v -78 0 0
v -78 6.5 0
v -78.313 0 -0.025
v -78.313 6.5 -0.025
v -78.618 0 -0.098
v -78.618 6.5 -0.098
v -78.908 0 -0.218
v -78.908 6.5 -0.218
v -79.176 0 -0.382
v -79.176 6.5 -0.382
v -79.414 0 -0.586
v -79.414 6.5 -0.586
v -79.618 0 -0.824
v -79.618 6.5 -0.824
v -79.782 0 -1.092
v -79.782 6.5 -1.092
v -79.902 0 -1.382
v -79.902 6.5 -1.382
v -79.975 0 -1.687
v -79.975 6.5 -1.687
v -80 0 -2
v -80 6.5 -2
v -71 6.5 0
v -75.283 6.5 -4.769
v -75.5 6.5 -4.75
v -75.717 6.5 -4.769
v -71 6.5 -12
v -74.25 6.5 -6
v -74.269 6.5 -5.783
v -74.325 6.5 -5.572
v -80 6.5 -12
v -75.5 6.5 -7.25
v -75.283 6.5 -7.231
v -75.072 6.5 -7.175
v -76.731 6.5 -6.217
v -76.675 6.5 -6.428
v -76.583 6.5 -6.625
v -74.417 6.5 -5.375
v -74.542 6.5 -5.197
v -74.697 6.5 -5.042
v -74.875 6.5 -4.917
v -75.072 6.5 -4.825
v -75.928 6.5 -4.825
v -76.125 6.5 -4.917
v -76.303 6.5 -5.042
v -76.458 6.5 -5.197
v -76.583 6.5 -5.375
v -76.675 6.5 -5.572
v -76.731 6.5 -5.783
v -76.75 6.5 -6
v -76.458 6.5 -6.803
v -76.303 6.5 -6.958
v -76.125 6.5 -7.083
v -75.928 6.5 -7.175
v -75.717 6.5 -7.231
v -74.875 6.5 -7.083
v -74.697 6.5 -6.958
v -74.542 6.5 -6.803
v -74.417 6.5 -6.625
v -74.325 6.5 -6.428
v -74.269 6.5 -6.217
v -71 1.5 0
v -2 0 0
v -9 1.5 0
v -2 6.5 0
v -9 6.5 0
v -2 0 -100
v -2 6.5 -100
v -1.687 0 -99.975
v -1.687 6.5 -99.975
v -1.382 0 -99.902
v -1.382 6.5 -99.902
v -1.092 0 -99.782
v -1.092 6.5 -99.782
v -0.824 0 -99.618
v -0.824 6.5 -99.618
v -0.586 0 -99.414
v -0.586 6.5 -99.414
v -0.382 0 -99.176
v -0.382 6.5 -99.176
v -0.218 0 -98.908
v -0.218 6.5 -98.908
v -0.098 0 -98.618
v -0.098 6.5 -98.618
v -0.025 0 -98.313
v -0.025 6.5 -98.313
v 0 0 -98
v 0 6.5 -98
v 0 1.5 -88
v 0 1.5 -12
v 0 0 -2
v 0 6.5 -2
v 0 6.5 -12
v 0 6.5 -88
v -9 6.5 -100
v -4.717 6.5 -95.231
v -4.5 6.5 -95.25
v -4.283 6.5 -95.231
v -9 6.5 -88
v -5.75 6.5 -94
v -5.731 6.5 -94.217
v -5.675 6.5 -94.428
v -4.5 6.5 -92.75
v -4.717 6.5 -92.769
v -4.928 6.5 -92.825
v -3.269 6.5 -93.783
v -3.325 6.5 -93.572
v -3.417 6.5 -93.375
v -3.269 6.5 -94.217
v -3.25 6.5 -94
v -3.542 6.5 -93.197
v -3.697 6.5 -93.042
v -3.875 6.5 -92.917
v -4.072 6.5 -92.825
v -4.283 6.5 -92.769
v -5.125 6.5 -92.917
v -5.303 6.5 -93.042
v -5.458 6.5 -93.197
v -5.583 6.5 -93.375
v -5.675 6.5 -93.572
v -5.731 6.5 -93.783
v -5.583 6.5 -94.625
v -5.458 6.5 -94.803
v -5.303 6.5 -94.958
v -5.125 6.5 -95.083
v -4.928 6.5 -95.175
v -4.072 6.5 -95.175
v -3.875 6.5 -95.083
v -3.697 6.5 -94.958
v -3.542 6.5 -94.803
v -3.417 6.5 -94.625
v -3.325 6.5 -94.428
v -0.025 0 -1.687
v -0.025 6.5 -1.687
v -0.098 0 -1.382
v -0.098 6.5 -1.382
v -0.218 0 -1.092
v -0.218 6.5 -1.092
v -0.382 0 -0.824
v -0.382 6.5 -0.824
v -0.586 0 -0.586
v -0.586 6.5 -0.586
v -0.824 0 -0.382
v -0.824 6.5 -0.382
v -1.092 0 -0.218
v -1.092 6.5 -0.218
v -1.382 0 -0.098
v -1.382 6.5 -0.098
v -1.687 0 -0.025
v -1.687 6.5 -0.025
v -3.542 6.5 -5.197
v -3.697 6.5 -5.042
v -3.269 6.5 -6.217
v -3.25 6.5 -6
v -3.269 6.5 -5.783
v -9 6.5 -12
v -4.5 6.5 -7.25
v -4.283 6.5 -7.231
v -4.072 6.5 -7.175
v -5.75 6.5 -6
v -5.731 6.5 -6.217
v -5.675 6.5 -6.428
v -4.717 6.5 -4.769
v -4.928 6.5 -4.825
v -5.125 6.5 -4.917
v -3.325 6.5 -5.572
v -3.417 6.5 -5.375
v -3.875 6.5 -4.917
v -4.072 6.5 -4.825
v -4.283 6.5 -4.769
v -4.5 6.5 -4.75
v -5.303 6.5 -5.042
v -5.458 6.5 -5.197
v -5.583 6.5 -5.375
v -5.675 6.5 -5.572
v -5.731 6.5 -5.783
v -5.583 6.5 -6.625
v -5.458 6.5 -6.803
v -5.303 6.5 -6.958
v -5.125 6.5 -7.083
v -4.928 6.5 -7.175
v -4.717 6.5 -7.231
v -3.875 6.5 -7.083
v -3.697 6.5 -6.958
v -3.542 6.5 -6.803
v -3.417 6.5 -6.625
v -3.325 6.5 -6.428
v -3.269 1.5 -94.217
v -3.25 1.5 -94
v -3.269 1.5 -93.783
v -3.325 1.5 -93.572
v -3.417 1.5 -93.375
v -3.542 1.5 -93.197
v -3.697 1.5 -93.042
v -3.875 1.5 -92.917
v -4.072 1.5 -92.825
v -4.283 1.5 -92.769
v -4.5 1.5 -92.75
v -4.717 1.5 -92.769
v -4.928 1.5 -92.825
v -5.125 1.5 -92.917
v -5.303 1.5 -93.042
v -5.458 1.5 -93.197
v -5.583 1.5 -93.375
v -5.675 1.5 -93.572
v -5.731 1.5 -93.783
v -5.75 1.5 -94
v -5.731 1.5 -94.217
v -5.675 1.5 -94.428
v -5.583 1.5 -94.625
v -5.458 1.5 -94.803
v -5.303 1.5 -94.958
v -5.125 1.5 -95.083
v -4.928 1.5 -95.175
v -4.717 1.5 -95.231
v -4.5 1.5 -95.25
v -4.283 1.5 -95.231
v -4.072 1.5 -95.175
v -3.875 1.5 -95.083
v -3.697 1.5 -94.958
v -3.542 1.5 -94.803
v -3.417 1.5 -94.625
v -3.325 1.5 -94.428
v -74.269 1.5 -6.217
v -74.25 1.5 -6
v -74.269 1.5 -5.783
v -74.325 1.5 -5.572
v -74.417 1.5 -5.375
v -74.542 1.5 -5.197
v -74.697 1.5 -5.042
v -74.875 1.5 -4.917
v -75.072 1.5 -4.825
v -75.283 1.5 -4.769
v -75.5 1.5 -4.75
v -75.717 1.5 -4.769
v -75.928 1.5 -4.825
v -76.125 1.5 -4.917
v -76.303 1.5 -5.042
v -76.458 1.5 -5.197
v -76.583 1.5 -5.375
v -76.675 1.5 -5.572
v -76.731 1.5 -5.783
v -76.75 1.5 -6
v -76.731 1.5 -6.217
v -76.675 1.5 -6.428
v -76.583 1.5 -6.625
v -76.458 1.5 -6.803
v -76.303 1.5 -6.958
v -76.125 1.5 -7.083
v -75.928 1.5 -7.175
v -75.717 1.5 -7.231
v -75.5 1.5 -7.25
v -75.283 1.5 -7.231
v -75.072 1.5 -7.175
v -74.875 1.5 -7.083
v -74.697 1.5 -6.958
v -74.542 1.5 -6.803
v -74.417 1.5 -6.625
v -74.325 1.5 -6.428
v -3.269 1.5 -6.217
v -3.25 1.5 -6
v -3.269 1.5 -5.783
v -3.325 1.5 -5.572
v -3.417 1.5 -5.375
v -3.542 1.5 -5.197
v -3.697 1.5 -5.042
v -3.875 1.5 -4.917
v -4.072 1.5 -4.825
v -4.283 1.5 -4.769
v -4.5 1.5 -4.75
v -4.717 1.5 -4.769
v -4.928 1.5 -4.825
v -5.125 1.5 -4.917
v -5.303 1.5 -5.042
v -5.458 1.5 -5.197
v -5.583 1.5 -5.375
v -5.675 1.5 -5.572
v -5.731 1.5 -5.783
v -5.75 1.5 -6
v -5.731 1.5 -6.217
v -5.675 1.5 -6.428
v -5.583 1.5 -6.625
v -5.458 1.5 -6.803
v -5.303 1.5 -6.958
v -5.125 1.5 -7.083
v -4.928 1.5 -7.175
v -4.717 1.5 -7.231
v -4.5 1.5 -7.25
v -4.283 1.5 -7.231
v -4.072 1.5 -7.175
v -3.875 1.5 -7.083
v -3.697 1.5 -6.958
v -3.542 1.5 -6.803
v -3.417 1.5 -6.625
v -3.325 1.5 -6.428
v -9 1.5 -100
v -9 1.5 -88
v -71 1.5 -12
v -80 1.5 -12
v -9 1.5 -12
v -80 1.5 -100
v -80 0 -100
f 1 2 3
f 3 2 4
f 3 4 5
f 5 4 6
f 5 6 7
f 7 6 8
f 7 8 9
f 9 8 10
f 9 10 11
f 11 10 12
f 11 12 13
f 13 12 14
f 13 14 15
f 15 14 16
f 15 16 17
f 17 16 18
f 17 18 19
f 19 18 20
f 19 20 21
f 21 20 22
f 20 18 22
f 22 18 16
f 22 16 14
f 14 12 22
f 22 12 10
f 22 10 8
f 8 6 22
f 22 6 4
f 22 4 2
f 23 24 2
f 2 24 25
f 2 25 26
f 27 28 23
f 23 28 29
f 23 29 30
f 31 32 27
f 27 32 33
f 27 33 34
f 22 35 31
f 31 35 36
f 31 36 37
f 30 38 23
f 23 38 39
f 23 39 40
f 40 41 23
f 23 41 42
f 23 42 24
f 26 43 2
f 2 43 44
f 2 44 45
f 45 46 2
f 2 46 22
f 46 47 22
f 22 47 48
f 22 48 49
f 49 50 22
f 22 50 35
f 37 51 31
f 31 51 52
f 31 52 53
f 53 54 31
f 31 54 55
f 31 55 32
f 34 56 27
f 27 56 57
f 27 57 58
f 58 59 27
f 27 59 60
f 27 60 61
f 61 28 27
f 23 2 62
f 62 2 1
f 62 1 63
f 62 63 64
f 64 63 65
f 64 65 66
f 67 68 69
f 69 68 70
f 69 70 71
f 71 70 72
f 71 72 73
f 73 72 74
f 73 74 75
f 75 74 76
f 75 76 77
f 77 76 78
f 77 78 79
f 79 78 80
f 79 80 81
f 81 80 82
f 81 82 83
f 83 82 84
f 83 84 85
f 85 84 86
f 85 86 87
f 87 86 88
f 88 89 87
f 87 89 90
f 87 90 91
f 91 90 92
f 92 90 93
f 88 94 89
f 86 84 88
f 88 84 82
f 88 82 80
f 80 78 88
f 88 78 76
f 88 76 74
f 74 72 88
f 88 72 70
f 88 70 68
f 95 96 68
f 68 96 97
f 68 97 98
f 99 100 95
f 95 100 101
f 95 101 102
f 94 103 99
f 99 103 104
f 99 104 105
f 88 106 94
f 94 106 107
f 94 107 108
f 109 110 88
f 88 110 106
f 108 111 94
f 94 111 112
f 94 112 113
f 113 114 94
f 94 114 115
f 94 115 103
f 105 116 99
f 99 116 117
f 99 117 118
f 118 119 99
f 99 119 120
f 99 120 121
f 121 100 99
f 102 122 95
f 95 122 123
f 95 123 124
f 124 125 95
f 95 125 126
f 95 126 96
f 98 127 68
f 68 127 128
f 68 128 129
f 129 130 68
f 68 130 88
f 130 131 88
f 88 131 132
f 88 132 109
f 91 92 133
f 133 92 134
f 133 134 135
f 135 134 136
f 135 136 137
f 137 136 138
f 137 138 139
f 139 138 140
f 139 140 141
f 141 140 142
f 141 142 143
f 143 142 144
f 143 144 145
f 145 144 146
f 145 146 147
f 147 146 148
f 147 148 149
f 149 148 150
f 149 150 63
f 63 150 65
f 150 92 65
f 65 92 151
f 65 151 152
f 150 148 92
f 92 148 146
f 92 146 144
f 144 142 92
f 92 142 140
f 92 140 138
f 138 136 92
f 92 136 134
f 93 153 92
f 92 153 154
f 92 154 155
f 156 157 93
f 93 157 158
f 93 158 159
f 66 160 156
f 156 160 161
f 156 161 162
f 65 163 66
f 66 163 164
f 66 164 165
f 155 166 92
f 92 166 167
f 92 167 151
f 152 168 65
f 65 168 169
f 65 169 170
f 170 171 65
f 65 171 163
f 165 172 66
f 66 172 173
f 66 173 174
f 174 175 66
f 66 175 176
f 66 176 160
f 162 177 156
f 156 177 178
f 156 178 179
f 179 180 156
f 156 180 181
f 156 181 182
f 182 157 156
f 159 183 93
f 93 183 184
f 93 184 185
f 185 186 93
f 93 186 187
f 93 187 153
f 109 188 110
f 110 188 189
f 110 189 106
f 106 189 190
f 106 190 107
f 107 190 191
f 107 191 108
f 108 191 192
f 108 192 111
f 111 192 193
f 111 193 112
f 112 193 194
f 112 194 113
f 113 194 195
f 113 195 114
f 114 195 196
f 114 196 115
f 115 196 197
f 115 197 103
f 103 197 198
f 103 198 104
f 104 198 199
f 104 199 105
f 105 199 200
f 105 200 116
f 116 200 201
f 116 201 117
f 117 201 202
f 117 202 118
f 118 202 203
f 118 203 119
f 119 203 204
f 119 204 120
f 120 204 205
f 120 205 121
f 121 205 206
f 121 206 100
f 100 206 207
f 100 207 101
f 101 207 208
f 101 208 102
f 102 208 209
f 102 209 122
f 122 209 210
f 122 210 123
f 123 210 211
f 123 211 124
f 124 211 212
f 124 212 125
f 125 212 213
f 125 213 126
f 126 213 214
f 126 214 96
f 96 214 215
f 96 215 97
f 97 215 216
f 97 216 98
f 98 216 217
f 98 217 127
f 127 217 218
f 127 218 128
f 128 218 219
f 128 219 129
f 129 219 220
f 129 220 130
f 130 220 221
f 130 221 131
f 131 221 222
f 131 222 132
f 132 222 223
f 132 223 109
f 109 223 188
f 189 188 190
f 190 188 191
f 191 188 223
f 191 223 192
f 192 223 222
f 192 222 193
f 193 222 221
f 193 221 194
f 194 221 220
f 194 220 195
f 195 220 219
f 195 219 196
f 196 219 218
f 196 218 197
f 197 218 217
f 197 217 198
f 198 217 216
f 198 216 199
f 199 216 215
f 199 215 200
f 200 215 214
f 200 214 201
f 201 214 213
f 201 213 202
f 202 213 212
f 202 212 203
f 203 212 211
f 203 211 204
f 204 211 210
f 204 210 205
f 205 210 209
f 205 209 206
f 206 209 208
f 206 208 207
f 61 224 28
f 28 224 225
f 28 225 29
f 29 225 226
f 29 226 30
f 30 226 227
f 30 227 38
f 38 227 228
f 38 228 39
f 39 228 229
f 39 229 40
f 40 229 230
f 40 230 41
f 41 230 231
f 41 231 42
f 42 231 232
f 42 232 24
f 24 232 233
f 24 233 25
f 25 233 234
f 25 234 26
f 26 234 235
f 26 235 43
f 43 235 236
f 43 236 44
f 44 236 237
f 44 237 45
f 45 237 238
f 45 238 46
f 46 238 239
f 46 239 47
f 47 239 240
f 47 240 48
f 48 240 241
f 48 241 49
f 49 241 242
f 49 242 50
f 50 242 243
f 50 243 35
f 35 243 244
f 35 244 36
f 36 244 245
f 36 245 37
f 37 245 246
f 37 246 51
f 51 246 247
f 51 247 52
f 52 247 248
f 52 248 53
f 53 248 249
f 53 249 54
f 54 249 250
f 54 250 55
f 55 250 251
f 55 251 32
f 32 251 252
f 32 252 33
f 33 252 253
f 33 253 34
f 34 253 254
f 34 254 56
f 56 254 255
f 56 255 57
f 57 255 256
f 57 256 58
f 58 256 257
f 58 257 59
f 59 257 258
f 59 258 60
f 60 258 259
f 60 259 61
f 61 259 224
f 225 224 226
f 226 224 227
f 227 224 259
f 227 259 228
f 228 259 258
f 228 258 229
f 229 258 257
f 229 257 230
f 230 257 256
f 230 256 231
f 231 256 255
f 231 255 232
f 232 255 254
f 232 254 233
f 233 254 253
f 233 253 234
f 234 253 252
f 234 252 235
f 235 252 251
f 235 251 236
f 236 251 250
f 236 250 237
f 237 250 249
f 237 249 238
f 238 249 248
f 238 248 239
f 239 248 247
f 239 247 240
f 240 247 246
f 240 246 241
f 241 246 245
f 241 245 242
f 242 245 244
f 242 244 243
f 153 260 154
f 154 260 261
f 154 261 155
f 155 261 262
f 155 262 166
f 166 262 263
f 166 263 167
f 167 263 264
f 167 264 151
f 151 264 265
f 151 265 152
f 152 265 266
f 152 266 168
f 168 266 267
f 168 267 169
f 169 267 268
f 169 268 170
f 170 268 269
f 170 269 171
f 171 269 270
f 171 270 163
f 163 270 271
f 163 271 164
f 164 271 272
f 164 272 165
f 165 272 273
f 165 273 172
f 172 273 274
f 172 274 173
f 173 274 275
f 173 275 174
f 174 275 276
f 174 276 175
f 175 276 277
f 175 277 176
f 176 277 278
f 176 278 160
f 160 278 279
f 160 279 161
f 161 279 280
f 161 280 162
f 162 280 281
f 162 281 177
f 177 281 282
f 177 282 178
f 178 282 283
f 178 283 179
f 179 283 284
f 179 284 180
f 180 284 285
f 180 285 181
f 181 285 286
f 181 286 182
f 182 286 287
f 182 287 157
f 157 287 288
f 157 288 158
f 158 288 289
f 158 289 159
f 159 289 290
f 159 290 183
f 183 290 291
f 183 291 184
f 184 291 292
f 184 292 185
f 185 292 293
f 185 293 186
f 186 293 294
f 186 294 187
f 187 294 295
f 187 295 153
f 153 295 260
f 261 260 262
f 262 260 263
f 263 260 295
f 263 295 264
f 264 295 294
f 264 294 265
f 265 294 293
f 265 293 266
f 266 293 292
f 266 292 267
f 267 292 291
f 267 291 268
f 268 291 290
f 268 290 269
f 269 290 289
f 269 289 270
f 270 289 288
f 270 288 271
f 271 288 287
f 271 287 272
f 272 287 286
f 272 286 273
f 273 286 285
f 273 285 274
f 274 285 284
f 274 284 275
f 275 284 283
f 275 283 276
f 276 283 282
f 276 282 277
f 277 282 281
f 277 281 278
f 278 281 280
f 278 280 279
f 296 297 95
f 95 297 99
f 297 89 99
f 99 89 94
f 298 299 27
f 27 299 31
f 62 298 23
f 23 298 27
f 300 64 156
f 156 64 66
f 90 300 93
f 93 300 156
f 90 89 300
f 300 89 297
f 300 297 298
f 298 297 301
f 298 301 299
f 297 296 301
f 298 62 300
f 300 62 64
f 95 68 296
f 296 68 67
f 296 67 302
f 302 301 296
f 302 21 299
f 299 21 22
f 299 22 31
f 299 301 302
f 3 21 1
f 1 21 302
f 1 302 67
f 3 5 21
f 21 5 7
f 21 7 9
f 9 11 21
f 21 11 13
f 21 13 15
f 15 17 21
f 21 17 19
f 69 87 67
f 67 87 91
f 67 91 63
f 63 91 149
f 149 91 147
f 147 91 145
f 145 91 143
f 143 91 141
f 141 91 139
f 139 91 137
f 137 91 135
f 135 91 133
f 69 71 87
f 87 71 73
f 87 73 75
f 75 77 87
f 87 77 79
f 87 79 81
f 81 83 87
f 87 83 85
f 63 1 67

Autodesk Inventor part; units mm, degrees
ref_plane "YZ Plane" through (0, 0, 0) normal (1, 0, 0) x (0, 1, 0)
ref_plane "XZ Plane" through (0, 0, 0) normal (0, 1, 0) x (-1, 0, 0)
ref_plane "XY Plane" through (0, 0, 0) normal (0, 0, 1) x (1, 0, 0)
sketch "Эскиз1" plane through (0, 0, 0) normal (0, 1, 0) x (-1, 0, 0)
  line L0 (0, 0) -> (80, 0)
  line L1 (80, 0) -> (80, -100)
  line L2 (80, -100) -> (0, -100)
  line L3 (0, -100) -> (0, 0)
  dimension "d0" = 80
  dimension "d1" = 100
extrude "Выдавливание1" add sketch "Эскиз1" along normal blind 1.5
sketch "Эскиз2" plane through (0, 1.5, 0) normal (0, 1, 0) x (1, 0, 0)
  circle A0 centre (-4.5, 94) radius 1.25
  circle A1 centre (-4.5, 6) radius 1.25
  circle A2 centre (-75.5, 6) radius 1.25
  line L0 (0, 0) -> (0, 100) projected
  line L1 (0, 100) -> (-80, 100) projected
  line L2 (-80, 0) -> (0, 0) projected
  line L3 (-80, 100) -> (-80, 0) projected
  dimension "d4" = 2.5
  dimension "d5" = 2.5
  dimension "d6" = 2.5
  dimension "d7" = 4.5
  dimension "d8" = 6
  dimension "d9" = 4.5
  dimension "d10" = 6
  dimension "d11" = 4.5
  dimension "d12" = 6
sketch "Эскиз3" plane through (0, 1.5, 0) normal (0, 1, 0) x (1, 0, 0)
  line L0 (-80, 0) -> (0, 0) projected
  line L1 (0, 0) -> (-9, 0)
  line L2 (-9, 0) -> (-9, 12)
  line L3 (-9, 12) -> (0, 12)
  line L4 (0, 12) -> (0, 0)
  line L5 (0, 100) -> (-80, 100) projected
  line L6 (0, 100) -> (-9, 100)
  line L7 (-9, 100) -> (-9, 88)
  line L8 (-9, 88) -> (0, 88)
  line L9 (0, 88) -> (0, 100)
  line L10 (-80, 100) -> (-80, 0) projected
  line L11 (-80, 0) -> (-71, 0)
  line L12 (-71, 0) -> (-71, 12)
  line L13 (-71, 12) -> (-80, 12)
  line L14 (-80, 12) -> (-80, 0)
  dimension "d13" = 9
  dimension "d14" = 12
  dimension "d15" = 9
  dimension "d16" = 12
  dimension "d17" = 9
  dimension "d18" = 12
extrude "Выдавливание2" add sketch "Эскиз3" along normal blind 5
extrude "Выдавливание3" cut sketch "Эскиз2" along normal blind 5 contours A0 | A1 | A2
fillet "Сопряжение1" radius 2 3 edges at (0, 3.25, 0) (0, 3.25, -100) (-80, 3.25, 0)
properties part number "FLC_Holder"
